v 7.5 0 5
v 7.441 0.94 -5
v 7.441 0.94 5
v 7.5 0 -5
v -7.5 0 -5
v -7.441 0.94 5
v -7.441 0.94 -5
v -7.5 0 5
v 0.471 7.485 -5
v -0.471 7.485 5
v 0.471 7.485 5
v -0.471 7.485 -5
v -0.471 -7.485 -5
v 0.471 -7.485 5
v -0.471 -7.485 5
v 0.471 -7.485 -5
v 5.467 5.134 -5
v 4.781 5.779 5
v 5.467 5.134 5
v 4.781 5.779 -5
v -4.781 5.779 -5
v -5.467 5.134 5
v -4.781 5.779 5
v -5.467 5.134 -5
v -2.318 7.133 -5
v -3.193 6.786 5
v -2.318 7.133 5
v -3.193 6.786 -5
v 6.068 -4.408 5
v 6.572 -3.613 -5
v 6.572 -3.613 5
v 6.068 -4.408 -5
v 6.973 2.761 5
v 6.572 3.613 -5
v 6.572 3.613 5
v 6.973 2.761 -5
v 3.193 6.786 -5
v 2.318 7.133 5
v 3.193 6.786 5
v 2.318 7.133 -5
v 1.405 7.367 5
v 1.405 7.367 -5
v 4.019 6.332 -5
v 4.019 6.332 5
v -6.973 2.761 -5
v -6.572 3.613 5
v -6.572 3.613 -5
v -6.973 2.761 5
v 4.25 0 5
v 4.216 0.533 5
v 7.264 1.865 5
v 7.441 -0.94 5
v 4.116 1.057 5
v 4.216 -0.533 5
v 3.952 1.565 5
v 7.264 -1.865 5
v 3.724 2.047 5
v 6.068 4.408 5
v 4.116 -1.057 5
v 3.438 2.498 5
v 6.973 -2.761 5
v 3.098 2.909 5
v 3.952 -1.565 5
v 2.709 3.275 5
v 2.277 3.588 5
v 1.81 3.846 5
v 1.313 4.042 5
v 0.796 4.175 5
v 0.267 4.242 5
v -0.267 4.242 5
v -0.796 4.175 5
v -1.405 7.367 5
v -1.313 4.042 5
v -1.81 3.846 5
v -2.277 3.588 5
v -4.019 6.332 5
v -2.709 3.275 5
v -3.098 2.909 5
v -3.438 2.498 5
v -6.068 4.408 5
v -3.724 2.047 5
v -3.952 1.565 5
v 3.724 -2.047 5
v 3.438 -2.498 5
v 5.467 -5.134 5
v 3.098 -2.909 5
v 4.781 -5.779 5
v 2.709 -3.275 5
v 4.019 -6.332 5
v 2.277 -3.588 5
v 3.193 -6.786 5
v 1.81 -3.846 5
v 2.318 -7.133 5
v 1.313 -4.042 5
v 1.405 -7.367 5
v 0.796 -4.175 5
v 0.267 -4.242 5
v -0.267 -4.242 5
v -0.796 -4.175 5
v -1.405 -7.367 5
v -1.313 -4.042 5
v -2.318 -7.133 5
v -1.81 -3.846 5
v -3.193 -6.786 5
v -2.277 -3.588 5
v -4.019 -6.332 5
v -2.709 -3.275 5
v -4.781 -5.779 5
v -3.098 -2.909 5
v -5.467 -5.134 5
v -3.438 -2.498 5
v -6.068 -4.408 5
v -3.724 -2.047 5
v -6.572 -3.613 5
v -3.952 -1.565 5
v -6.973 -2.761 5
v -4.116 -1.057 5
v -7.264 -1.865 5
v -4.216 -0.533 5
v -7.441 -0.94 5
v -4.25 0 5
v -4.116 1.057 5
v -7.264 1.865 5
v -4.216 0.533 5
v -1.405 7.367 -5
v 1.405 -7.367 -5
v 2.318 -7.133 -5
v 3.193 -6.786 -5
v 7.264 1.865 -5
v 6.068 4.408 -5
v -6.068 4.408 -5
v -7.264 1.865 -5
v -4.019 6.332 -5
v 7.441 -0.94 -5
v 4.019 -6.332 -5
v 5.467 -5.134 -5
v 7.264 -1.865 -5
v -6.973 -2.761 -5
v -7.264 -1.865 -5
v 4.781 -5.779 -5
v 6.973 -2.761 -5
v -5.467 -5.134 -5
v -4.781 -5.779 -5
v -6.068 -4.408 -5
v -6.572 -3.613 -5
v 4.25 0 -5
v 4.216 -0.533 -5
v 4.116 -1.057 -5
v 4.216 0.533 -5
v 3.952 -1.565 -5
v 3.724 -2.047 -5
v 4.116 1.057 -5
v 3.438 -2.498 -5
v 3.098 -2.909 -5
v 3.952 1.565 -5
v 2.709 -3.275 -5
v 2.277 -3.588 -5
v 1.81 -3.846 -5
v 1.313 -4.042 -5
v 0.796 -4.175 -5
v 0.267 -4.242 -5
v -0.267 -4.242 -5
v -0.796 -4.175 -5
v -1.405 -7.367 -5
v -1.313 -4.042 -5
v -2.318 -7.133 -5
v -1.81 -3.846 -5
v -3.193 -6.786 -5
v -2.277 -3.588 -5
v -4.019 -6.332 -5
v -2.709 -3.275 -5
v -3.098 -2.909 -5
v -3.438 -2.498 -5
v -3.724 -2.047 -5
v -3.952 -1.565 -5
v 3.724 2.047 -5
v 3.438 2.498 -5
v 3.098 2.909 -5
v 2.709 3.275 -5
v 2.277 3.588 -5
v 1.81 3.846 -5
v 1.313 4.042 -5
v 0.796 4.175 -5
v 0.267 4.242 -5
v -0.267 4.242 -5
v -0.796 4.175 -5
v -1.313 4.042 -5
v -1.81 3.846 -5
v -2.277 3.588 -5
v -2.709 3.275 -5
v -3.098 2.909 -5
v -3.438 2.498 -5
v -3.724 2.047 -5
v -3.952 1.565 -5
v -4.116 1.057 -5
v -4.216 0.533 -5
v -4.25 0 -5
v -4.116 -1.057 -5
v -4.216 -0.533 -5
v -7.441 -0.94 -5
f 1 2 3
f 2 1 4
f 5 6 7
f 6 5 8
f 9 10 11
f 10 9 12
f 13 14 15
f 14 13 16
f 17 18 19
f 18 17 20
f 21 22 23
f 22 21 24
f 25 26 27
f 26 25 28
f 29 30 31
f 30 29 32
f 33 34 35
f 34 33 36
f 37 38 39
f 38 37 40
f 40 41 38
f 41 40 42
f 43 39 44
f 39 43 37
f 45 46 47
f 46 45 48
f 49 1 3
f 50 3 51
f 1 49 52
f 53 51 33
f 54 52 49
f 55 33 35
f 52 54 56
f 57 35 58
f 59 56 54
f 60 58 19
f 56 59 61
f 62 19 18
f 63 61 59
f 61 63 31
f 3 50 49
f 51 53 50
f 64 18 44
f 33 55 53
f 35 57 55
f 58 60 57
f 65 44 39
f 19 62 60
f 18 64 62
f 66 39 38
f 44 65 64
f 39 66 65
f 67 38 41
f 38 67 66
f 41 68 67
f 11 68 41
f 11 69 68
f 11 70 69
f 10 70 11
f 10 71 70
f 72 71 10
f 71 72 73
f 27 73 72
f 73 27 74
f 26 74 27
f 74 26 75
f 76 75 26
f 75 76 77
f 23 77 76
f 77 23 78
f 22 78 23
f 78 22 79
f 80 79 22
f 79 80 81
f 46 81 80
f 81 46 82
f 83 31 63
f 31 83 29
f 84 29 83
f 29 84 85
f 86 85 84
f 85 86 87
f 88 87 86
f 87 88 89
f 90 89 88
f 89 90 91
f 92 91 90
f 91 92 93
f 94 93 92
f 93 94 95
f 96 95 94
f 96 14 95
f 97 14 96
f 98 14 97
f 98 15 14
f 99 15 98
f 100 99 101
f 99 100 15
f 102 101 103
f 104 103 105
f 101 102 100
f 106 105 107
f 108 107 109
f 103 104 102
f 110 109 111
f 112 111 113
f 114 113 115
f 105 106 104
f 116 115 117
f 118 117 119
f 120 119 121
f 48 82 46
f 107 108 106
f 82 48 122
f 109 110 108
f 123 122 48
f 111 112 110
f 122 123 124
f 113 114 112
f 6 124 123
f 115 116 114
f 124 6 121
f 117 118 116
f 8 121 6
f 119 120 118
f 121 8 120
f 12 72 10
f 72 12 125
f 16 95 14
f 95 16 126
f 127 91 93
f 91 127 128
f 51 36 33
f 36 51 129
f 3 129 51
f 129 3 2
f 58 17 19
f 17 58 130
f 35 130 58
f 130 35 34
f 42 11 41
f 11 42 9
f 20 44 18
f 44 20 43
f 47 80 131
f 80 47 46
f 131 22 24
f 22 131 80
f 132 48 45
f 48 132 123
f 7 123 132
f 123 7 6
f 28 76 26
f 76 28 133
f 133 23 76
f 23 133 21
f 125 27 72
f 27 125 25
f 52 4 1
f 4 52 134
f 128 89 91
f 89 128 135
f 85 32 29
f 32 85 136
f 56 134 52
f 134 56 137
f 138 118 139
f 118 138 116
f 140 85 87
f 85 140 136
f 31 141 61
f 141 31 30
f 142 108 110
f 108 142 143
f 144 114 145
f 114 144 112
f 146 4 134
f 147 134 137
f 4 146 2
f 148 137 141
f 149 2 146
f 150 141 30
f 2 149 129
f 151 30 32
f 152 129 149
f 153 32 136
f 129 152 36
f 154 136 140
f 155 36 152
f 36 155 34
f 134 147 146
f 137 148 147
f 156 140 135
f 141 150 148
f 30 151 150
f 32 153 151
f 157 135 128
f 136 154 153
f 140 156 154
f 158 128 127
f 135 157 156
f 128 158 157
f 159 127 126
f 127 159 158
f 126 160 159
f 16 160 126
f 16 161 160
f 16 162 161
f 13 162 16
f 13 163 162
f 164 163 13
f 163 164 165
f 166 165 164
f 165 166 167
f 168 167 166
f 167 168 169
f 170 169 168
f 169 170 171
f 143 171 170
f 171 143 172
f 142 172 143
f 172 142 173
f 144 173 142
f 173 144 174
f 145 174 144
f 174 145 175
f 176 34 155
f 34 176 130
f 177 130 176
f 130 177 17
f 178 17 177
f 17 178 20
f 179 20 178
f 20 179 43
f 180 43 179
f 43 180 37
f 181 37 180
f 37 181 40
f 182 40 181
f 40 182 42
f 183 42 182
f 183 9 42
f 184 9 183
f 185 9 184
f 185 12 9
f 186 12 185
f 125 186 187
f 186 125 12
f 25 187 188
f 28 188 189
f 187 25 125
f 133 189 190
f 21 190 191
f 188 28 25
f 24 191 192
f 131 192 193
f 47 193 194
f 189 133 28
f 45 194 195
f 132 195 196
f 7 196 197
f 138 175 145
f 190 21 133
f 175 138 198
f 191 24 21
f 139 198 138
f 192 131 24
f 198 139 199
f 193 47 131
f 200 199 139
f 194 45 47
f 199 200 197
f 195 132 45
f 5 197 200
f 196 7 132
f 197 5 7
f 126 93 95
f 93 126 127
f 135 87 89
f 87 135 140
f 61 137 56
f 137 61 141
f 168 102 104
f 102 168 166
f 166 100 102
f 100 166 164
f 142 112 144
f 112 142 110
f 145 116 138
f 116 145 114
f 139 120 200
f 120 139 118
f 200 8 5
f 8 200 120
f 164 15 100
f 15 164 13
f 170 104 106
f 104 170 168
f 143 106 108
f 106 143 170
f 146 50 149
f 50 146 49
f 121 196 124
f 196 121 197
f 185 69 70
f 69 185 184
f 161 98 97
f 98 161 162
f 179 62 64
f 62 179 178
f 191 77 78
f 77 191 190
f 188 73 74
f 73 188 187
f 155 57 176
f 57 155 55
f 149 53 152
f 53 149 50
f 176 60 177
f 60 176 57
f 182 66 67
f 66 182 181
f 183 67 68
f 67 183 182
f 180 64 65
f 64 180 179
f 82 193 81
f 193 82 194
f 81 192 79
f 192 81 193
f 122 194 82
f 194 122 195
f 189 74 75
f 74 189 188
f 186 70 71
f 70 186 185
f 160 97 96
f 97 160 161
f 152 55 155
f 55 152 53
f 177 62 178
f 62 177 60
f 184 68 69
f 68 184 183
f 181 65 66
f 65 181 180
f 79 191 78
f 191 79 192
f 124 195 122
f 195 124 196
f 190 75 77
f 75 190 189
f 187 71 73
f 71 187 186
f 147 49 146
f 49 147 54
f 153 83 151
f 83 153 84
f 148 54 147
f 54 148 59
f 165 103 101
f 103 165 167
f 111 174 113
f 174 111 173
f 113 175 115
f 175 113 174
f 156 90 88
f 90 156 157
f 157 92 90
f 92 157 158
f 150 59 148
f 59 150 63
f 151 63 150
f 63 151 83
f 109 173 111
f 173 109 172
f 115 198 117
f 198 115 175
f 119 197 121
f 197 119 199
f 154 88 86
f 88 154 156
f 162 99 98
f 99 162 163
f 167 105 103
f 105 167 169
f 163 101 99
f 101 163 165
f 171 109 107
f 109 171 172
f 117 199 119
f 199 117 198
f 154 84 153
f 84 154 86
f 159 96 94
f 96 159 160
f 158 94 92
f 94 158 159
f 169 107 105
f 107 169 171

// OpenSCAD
$fn = 50;


difference() {
	union() {
		translate(v = [0, 0, -5.0000000000]) {
			cylinder(h = 10, r = 7.5000000000);
		}
	}
	union() {
		translate(v = [0, 0, -100.0000000000]) {
			cylinder(h = 200, r = 4.2500000000);
		}
	}
}
